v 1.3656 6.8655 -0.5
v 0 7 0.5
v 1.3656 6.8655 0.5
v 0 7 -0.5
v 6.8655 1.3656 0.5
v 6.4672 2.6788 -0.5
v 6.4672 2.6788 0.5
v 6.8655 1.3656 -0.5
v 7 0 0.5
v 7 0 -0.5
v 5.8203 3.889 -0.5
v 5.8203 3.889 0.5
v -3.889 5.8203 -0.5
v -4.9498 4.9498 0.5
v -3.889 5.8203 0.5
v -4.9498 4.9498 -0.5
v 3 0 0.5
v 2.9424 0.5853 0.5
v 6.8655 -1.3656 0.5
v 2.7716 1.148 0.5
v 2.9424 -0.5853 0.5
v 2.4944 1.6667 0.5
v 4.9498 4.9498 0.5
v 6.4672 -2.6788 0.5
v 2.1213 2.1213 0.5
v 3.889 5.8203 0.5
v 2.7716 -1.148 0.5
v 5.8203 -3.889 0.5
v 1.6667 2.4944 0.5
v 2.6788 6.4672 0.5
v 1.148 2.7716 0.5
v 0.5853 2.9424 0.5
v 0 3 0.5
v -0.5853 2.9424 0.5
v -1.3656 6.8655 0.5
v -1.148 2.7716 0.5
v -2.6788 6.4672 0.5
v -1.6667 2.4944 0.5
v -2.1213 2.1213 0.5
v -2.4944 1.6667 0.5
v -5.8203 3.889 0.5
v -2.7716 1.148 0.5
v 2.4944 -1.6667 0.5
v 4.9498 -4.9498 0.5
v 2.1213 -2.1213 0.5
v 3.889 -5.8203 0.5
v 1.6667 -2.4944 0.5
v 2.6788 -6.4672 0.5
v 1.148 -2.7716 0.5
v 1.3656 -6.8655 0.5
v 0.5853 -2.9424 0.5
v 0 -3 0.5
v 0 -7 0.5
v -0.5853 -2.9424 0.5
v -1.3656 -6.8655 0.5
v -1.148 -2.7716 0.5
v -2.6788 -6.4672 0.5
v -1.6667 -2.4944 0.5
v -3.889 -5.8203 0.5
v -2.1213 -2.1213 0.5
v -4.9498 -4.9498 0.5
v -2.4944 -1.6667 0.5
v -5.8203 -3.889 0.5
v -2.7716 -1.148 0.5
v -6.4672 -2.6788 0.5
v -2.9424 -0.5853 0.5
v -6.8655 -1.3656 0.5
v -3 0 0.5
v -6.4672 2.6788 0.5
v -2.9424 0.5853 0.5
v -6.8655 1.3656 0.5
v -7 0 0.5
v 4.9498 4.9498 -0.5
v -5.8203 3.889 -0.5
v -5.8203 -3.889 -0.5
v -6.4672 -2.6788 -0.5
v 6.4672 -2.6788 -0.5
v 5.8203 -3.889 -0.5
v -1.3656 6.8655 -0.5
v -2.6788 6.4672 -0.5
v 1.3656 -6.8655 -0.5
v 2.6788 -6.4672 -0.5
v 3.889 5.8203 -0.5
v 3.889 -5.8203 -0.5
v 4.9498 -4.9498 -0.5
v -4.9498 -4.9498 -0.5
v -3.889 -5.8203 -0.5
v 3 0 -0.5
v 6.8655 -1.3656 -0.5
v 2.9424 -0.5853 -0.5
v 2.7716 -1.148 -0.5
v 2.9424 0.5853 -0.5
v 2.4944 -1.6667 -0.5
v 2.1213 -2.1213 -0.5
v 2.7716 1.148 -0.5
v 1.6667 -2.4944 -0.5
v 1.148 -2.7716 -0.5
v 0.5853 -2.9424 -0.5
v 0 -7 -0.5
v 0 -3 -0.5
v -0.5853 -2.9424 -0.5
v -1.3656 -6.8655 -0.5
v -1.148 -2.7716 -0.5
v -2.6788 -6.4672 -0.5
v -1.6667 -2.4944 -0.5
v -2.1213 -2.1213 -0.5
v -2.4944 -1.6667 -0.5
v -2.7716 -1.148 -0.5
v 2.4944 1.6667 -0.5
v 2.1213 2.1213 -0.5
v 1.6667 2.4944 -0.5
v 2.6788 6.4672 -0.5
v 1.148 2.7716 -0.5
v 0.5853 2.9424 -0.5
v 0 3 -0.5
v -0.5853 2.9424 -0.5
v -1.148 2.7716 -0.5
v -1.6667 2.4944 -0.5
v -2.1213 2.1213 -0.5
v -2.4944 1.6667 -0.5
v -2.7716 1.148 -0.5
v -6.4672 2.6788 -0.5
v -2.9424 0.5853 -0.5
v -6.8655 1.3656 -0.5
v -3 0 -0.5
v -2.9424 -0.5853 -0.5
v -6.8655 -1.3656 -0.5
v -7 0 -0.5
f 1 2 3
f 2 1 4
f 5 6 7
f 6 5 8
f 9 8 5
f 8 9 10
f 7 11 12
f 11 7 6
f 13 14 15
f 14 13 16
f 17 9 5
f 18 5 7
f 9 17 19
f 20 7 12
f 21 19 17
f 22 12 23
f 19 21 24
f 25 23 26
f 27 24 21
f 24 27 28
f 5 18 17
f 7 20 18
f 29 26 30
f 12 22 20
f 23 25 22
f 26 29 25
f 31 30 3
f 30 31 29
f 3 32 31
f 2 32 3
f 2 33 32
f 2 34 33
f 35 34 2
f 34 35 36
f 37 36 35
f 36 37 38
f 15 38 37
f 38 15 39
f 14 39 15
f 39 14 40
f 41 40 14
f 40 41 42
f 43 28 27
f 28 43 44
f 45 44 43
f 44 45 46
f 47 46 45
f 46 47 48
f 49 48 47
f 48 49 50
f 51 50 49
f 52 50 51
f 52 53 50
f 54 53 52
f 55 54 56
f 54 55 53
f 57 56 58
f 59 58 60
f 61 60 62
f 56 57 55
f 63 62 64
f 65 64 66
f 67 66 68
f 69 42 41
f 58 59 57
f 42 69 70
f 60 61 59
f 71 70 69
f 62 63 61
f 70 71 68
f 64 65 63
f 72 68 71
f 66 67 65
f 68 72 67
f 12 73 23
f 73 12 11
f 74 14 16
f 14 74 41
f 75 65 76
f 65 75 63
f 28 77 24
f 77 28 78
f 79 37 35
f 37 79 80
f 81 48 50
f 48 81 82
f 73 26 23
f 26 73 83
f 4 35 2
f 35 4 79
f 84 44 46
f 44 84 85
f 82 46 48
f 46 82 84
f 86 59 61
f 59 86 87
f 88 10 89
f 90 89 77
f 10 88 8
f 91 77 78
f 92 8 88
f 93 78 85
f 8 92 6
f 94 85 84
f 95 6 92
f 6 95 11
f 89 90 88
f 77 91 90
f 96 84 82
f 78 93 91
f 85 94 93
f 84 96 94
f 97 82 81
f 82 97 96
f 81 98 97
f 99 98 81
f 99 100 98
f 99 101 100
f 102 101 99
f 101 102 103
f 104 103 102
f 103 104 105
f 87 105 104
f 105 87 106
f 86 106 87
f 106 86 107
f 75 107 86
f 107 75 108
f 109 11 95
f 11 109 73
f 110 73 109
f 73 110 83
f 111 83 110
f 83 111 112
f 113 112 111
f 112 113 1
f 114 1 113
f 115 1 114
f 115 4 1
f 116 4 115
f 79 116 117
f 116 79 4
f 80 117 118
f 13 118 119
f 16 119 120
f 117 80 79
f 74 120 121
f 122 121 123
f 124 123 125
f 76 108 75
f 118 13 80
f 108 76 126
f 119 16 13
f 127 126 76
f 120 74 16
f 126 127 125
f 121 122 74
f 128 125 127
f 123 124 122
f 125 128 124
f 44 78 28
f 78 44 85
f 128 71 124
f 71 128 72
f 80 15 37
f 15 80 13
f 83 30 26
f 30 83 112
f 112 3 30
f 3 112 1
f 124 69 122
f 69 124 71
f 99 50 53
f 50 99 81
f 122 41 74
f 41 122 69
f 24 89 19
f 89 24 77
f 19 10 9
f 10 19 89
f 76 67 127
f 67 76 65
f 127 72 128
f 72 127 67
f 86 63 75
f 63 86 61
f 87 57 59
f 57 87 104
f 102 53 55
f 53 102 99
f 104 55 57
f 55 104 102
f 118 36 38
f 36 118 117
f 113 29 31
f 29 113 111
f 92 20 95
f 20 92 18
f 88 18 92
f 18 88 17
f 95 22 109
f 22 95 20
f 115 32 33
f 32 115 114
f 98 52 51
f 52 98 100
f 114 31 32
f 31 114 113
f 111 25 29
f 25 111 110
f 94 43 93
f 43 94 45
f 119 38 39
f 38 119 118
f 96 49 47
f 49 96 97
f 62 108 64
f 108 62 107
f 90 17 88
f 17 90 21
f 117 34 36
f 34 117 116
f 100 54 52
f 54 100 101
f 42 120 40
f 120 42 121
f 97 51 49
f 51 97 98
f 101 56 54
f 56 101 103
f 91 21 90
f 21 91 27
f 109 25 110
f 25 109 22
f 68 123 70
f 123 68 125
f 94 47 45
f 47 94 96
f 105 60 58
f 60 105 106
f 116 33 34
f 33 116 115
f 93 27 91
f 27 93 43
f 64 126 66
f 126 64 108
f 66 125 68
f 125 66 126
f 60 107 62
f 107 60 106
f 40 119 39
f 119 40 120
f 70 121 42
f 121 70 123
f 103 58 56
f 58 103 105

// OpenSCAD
$fn=32;

// Imprimir con Flex! 

OringHeight=1;
OringRadOut=7;
OringRadIn=3;

difference(){
    cylinder(r=OringRadOut, h=OringHeight, center=true);
    cylinder(r=OringRadIn, h=OringHeight+1, center=true);
}
